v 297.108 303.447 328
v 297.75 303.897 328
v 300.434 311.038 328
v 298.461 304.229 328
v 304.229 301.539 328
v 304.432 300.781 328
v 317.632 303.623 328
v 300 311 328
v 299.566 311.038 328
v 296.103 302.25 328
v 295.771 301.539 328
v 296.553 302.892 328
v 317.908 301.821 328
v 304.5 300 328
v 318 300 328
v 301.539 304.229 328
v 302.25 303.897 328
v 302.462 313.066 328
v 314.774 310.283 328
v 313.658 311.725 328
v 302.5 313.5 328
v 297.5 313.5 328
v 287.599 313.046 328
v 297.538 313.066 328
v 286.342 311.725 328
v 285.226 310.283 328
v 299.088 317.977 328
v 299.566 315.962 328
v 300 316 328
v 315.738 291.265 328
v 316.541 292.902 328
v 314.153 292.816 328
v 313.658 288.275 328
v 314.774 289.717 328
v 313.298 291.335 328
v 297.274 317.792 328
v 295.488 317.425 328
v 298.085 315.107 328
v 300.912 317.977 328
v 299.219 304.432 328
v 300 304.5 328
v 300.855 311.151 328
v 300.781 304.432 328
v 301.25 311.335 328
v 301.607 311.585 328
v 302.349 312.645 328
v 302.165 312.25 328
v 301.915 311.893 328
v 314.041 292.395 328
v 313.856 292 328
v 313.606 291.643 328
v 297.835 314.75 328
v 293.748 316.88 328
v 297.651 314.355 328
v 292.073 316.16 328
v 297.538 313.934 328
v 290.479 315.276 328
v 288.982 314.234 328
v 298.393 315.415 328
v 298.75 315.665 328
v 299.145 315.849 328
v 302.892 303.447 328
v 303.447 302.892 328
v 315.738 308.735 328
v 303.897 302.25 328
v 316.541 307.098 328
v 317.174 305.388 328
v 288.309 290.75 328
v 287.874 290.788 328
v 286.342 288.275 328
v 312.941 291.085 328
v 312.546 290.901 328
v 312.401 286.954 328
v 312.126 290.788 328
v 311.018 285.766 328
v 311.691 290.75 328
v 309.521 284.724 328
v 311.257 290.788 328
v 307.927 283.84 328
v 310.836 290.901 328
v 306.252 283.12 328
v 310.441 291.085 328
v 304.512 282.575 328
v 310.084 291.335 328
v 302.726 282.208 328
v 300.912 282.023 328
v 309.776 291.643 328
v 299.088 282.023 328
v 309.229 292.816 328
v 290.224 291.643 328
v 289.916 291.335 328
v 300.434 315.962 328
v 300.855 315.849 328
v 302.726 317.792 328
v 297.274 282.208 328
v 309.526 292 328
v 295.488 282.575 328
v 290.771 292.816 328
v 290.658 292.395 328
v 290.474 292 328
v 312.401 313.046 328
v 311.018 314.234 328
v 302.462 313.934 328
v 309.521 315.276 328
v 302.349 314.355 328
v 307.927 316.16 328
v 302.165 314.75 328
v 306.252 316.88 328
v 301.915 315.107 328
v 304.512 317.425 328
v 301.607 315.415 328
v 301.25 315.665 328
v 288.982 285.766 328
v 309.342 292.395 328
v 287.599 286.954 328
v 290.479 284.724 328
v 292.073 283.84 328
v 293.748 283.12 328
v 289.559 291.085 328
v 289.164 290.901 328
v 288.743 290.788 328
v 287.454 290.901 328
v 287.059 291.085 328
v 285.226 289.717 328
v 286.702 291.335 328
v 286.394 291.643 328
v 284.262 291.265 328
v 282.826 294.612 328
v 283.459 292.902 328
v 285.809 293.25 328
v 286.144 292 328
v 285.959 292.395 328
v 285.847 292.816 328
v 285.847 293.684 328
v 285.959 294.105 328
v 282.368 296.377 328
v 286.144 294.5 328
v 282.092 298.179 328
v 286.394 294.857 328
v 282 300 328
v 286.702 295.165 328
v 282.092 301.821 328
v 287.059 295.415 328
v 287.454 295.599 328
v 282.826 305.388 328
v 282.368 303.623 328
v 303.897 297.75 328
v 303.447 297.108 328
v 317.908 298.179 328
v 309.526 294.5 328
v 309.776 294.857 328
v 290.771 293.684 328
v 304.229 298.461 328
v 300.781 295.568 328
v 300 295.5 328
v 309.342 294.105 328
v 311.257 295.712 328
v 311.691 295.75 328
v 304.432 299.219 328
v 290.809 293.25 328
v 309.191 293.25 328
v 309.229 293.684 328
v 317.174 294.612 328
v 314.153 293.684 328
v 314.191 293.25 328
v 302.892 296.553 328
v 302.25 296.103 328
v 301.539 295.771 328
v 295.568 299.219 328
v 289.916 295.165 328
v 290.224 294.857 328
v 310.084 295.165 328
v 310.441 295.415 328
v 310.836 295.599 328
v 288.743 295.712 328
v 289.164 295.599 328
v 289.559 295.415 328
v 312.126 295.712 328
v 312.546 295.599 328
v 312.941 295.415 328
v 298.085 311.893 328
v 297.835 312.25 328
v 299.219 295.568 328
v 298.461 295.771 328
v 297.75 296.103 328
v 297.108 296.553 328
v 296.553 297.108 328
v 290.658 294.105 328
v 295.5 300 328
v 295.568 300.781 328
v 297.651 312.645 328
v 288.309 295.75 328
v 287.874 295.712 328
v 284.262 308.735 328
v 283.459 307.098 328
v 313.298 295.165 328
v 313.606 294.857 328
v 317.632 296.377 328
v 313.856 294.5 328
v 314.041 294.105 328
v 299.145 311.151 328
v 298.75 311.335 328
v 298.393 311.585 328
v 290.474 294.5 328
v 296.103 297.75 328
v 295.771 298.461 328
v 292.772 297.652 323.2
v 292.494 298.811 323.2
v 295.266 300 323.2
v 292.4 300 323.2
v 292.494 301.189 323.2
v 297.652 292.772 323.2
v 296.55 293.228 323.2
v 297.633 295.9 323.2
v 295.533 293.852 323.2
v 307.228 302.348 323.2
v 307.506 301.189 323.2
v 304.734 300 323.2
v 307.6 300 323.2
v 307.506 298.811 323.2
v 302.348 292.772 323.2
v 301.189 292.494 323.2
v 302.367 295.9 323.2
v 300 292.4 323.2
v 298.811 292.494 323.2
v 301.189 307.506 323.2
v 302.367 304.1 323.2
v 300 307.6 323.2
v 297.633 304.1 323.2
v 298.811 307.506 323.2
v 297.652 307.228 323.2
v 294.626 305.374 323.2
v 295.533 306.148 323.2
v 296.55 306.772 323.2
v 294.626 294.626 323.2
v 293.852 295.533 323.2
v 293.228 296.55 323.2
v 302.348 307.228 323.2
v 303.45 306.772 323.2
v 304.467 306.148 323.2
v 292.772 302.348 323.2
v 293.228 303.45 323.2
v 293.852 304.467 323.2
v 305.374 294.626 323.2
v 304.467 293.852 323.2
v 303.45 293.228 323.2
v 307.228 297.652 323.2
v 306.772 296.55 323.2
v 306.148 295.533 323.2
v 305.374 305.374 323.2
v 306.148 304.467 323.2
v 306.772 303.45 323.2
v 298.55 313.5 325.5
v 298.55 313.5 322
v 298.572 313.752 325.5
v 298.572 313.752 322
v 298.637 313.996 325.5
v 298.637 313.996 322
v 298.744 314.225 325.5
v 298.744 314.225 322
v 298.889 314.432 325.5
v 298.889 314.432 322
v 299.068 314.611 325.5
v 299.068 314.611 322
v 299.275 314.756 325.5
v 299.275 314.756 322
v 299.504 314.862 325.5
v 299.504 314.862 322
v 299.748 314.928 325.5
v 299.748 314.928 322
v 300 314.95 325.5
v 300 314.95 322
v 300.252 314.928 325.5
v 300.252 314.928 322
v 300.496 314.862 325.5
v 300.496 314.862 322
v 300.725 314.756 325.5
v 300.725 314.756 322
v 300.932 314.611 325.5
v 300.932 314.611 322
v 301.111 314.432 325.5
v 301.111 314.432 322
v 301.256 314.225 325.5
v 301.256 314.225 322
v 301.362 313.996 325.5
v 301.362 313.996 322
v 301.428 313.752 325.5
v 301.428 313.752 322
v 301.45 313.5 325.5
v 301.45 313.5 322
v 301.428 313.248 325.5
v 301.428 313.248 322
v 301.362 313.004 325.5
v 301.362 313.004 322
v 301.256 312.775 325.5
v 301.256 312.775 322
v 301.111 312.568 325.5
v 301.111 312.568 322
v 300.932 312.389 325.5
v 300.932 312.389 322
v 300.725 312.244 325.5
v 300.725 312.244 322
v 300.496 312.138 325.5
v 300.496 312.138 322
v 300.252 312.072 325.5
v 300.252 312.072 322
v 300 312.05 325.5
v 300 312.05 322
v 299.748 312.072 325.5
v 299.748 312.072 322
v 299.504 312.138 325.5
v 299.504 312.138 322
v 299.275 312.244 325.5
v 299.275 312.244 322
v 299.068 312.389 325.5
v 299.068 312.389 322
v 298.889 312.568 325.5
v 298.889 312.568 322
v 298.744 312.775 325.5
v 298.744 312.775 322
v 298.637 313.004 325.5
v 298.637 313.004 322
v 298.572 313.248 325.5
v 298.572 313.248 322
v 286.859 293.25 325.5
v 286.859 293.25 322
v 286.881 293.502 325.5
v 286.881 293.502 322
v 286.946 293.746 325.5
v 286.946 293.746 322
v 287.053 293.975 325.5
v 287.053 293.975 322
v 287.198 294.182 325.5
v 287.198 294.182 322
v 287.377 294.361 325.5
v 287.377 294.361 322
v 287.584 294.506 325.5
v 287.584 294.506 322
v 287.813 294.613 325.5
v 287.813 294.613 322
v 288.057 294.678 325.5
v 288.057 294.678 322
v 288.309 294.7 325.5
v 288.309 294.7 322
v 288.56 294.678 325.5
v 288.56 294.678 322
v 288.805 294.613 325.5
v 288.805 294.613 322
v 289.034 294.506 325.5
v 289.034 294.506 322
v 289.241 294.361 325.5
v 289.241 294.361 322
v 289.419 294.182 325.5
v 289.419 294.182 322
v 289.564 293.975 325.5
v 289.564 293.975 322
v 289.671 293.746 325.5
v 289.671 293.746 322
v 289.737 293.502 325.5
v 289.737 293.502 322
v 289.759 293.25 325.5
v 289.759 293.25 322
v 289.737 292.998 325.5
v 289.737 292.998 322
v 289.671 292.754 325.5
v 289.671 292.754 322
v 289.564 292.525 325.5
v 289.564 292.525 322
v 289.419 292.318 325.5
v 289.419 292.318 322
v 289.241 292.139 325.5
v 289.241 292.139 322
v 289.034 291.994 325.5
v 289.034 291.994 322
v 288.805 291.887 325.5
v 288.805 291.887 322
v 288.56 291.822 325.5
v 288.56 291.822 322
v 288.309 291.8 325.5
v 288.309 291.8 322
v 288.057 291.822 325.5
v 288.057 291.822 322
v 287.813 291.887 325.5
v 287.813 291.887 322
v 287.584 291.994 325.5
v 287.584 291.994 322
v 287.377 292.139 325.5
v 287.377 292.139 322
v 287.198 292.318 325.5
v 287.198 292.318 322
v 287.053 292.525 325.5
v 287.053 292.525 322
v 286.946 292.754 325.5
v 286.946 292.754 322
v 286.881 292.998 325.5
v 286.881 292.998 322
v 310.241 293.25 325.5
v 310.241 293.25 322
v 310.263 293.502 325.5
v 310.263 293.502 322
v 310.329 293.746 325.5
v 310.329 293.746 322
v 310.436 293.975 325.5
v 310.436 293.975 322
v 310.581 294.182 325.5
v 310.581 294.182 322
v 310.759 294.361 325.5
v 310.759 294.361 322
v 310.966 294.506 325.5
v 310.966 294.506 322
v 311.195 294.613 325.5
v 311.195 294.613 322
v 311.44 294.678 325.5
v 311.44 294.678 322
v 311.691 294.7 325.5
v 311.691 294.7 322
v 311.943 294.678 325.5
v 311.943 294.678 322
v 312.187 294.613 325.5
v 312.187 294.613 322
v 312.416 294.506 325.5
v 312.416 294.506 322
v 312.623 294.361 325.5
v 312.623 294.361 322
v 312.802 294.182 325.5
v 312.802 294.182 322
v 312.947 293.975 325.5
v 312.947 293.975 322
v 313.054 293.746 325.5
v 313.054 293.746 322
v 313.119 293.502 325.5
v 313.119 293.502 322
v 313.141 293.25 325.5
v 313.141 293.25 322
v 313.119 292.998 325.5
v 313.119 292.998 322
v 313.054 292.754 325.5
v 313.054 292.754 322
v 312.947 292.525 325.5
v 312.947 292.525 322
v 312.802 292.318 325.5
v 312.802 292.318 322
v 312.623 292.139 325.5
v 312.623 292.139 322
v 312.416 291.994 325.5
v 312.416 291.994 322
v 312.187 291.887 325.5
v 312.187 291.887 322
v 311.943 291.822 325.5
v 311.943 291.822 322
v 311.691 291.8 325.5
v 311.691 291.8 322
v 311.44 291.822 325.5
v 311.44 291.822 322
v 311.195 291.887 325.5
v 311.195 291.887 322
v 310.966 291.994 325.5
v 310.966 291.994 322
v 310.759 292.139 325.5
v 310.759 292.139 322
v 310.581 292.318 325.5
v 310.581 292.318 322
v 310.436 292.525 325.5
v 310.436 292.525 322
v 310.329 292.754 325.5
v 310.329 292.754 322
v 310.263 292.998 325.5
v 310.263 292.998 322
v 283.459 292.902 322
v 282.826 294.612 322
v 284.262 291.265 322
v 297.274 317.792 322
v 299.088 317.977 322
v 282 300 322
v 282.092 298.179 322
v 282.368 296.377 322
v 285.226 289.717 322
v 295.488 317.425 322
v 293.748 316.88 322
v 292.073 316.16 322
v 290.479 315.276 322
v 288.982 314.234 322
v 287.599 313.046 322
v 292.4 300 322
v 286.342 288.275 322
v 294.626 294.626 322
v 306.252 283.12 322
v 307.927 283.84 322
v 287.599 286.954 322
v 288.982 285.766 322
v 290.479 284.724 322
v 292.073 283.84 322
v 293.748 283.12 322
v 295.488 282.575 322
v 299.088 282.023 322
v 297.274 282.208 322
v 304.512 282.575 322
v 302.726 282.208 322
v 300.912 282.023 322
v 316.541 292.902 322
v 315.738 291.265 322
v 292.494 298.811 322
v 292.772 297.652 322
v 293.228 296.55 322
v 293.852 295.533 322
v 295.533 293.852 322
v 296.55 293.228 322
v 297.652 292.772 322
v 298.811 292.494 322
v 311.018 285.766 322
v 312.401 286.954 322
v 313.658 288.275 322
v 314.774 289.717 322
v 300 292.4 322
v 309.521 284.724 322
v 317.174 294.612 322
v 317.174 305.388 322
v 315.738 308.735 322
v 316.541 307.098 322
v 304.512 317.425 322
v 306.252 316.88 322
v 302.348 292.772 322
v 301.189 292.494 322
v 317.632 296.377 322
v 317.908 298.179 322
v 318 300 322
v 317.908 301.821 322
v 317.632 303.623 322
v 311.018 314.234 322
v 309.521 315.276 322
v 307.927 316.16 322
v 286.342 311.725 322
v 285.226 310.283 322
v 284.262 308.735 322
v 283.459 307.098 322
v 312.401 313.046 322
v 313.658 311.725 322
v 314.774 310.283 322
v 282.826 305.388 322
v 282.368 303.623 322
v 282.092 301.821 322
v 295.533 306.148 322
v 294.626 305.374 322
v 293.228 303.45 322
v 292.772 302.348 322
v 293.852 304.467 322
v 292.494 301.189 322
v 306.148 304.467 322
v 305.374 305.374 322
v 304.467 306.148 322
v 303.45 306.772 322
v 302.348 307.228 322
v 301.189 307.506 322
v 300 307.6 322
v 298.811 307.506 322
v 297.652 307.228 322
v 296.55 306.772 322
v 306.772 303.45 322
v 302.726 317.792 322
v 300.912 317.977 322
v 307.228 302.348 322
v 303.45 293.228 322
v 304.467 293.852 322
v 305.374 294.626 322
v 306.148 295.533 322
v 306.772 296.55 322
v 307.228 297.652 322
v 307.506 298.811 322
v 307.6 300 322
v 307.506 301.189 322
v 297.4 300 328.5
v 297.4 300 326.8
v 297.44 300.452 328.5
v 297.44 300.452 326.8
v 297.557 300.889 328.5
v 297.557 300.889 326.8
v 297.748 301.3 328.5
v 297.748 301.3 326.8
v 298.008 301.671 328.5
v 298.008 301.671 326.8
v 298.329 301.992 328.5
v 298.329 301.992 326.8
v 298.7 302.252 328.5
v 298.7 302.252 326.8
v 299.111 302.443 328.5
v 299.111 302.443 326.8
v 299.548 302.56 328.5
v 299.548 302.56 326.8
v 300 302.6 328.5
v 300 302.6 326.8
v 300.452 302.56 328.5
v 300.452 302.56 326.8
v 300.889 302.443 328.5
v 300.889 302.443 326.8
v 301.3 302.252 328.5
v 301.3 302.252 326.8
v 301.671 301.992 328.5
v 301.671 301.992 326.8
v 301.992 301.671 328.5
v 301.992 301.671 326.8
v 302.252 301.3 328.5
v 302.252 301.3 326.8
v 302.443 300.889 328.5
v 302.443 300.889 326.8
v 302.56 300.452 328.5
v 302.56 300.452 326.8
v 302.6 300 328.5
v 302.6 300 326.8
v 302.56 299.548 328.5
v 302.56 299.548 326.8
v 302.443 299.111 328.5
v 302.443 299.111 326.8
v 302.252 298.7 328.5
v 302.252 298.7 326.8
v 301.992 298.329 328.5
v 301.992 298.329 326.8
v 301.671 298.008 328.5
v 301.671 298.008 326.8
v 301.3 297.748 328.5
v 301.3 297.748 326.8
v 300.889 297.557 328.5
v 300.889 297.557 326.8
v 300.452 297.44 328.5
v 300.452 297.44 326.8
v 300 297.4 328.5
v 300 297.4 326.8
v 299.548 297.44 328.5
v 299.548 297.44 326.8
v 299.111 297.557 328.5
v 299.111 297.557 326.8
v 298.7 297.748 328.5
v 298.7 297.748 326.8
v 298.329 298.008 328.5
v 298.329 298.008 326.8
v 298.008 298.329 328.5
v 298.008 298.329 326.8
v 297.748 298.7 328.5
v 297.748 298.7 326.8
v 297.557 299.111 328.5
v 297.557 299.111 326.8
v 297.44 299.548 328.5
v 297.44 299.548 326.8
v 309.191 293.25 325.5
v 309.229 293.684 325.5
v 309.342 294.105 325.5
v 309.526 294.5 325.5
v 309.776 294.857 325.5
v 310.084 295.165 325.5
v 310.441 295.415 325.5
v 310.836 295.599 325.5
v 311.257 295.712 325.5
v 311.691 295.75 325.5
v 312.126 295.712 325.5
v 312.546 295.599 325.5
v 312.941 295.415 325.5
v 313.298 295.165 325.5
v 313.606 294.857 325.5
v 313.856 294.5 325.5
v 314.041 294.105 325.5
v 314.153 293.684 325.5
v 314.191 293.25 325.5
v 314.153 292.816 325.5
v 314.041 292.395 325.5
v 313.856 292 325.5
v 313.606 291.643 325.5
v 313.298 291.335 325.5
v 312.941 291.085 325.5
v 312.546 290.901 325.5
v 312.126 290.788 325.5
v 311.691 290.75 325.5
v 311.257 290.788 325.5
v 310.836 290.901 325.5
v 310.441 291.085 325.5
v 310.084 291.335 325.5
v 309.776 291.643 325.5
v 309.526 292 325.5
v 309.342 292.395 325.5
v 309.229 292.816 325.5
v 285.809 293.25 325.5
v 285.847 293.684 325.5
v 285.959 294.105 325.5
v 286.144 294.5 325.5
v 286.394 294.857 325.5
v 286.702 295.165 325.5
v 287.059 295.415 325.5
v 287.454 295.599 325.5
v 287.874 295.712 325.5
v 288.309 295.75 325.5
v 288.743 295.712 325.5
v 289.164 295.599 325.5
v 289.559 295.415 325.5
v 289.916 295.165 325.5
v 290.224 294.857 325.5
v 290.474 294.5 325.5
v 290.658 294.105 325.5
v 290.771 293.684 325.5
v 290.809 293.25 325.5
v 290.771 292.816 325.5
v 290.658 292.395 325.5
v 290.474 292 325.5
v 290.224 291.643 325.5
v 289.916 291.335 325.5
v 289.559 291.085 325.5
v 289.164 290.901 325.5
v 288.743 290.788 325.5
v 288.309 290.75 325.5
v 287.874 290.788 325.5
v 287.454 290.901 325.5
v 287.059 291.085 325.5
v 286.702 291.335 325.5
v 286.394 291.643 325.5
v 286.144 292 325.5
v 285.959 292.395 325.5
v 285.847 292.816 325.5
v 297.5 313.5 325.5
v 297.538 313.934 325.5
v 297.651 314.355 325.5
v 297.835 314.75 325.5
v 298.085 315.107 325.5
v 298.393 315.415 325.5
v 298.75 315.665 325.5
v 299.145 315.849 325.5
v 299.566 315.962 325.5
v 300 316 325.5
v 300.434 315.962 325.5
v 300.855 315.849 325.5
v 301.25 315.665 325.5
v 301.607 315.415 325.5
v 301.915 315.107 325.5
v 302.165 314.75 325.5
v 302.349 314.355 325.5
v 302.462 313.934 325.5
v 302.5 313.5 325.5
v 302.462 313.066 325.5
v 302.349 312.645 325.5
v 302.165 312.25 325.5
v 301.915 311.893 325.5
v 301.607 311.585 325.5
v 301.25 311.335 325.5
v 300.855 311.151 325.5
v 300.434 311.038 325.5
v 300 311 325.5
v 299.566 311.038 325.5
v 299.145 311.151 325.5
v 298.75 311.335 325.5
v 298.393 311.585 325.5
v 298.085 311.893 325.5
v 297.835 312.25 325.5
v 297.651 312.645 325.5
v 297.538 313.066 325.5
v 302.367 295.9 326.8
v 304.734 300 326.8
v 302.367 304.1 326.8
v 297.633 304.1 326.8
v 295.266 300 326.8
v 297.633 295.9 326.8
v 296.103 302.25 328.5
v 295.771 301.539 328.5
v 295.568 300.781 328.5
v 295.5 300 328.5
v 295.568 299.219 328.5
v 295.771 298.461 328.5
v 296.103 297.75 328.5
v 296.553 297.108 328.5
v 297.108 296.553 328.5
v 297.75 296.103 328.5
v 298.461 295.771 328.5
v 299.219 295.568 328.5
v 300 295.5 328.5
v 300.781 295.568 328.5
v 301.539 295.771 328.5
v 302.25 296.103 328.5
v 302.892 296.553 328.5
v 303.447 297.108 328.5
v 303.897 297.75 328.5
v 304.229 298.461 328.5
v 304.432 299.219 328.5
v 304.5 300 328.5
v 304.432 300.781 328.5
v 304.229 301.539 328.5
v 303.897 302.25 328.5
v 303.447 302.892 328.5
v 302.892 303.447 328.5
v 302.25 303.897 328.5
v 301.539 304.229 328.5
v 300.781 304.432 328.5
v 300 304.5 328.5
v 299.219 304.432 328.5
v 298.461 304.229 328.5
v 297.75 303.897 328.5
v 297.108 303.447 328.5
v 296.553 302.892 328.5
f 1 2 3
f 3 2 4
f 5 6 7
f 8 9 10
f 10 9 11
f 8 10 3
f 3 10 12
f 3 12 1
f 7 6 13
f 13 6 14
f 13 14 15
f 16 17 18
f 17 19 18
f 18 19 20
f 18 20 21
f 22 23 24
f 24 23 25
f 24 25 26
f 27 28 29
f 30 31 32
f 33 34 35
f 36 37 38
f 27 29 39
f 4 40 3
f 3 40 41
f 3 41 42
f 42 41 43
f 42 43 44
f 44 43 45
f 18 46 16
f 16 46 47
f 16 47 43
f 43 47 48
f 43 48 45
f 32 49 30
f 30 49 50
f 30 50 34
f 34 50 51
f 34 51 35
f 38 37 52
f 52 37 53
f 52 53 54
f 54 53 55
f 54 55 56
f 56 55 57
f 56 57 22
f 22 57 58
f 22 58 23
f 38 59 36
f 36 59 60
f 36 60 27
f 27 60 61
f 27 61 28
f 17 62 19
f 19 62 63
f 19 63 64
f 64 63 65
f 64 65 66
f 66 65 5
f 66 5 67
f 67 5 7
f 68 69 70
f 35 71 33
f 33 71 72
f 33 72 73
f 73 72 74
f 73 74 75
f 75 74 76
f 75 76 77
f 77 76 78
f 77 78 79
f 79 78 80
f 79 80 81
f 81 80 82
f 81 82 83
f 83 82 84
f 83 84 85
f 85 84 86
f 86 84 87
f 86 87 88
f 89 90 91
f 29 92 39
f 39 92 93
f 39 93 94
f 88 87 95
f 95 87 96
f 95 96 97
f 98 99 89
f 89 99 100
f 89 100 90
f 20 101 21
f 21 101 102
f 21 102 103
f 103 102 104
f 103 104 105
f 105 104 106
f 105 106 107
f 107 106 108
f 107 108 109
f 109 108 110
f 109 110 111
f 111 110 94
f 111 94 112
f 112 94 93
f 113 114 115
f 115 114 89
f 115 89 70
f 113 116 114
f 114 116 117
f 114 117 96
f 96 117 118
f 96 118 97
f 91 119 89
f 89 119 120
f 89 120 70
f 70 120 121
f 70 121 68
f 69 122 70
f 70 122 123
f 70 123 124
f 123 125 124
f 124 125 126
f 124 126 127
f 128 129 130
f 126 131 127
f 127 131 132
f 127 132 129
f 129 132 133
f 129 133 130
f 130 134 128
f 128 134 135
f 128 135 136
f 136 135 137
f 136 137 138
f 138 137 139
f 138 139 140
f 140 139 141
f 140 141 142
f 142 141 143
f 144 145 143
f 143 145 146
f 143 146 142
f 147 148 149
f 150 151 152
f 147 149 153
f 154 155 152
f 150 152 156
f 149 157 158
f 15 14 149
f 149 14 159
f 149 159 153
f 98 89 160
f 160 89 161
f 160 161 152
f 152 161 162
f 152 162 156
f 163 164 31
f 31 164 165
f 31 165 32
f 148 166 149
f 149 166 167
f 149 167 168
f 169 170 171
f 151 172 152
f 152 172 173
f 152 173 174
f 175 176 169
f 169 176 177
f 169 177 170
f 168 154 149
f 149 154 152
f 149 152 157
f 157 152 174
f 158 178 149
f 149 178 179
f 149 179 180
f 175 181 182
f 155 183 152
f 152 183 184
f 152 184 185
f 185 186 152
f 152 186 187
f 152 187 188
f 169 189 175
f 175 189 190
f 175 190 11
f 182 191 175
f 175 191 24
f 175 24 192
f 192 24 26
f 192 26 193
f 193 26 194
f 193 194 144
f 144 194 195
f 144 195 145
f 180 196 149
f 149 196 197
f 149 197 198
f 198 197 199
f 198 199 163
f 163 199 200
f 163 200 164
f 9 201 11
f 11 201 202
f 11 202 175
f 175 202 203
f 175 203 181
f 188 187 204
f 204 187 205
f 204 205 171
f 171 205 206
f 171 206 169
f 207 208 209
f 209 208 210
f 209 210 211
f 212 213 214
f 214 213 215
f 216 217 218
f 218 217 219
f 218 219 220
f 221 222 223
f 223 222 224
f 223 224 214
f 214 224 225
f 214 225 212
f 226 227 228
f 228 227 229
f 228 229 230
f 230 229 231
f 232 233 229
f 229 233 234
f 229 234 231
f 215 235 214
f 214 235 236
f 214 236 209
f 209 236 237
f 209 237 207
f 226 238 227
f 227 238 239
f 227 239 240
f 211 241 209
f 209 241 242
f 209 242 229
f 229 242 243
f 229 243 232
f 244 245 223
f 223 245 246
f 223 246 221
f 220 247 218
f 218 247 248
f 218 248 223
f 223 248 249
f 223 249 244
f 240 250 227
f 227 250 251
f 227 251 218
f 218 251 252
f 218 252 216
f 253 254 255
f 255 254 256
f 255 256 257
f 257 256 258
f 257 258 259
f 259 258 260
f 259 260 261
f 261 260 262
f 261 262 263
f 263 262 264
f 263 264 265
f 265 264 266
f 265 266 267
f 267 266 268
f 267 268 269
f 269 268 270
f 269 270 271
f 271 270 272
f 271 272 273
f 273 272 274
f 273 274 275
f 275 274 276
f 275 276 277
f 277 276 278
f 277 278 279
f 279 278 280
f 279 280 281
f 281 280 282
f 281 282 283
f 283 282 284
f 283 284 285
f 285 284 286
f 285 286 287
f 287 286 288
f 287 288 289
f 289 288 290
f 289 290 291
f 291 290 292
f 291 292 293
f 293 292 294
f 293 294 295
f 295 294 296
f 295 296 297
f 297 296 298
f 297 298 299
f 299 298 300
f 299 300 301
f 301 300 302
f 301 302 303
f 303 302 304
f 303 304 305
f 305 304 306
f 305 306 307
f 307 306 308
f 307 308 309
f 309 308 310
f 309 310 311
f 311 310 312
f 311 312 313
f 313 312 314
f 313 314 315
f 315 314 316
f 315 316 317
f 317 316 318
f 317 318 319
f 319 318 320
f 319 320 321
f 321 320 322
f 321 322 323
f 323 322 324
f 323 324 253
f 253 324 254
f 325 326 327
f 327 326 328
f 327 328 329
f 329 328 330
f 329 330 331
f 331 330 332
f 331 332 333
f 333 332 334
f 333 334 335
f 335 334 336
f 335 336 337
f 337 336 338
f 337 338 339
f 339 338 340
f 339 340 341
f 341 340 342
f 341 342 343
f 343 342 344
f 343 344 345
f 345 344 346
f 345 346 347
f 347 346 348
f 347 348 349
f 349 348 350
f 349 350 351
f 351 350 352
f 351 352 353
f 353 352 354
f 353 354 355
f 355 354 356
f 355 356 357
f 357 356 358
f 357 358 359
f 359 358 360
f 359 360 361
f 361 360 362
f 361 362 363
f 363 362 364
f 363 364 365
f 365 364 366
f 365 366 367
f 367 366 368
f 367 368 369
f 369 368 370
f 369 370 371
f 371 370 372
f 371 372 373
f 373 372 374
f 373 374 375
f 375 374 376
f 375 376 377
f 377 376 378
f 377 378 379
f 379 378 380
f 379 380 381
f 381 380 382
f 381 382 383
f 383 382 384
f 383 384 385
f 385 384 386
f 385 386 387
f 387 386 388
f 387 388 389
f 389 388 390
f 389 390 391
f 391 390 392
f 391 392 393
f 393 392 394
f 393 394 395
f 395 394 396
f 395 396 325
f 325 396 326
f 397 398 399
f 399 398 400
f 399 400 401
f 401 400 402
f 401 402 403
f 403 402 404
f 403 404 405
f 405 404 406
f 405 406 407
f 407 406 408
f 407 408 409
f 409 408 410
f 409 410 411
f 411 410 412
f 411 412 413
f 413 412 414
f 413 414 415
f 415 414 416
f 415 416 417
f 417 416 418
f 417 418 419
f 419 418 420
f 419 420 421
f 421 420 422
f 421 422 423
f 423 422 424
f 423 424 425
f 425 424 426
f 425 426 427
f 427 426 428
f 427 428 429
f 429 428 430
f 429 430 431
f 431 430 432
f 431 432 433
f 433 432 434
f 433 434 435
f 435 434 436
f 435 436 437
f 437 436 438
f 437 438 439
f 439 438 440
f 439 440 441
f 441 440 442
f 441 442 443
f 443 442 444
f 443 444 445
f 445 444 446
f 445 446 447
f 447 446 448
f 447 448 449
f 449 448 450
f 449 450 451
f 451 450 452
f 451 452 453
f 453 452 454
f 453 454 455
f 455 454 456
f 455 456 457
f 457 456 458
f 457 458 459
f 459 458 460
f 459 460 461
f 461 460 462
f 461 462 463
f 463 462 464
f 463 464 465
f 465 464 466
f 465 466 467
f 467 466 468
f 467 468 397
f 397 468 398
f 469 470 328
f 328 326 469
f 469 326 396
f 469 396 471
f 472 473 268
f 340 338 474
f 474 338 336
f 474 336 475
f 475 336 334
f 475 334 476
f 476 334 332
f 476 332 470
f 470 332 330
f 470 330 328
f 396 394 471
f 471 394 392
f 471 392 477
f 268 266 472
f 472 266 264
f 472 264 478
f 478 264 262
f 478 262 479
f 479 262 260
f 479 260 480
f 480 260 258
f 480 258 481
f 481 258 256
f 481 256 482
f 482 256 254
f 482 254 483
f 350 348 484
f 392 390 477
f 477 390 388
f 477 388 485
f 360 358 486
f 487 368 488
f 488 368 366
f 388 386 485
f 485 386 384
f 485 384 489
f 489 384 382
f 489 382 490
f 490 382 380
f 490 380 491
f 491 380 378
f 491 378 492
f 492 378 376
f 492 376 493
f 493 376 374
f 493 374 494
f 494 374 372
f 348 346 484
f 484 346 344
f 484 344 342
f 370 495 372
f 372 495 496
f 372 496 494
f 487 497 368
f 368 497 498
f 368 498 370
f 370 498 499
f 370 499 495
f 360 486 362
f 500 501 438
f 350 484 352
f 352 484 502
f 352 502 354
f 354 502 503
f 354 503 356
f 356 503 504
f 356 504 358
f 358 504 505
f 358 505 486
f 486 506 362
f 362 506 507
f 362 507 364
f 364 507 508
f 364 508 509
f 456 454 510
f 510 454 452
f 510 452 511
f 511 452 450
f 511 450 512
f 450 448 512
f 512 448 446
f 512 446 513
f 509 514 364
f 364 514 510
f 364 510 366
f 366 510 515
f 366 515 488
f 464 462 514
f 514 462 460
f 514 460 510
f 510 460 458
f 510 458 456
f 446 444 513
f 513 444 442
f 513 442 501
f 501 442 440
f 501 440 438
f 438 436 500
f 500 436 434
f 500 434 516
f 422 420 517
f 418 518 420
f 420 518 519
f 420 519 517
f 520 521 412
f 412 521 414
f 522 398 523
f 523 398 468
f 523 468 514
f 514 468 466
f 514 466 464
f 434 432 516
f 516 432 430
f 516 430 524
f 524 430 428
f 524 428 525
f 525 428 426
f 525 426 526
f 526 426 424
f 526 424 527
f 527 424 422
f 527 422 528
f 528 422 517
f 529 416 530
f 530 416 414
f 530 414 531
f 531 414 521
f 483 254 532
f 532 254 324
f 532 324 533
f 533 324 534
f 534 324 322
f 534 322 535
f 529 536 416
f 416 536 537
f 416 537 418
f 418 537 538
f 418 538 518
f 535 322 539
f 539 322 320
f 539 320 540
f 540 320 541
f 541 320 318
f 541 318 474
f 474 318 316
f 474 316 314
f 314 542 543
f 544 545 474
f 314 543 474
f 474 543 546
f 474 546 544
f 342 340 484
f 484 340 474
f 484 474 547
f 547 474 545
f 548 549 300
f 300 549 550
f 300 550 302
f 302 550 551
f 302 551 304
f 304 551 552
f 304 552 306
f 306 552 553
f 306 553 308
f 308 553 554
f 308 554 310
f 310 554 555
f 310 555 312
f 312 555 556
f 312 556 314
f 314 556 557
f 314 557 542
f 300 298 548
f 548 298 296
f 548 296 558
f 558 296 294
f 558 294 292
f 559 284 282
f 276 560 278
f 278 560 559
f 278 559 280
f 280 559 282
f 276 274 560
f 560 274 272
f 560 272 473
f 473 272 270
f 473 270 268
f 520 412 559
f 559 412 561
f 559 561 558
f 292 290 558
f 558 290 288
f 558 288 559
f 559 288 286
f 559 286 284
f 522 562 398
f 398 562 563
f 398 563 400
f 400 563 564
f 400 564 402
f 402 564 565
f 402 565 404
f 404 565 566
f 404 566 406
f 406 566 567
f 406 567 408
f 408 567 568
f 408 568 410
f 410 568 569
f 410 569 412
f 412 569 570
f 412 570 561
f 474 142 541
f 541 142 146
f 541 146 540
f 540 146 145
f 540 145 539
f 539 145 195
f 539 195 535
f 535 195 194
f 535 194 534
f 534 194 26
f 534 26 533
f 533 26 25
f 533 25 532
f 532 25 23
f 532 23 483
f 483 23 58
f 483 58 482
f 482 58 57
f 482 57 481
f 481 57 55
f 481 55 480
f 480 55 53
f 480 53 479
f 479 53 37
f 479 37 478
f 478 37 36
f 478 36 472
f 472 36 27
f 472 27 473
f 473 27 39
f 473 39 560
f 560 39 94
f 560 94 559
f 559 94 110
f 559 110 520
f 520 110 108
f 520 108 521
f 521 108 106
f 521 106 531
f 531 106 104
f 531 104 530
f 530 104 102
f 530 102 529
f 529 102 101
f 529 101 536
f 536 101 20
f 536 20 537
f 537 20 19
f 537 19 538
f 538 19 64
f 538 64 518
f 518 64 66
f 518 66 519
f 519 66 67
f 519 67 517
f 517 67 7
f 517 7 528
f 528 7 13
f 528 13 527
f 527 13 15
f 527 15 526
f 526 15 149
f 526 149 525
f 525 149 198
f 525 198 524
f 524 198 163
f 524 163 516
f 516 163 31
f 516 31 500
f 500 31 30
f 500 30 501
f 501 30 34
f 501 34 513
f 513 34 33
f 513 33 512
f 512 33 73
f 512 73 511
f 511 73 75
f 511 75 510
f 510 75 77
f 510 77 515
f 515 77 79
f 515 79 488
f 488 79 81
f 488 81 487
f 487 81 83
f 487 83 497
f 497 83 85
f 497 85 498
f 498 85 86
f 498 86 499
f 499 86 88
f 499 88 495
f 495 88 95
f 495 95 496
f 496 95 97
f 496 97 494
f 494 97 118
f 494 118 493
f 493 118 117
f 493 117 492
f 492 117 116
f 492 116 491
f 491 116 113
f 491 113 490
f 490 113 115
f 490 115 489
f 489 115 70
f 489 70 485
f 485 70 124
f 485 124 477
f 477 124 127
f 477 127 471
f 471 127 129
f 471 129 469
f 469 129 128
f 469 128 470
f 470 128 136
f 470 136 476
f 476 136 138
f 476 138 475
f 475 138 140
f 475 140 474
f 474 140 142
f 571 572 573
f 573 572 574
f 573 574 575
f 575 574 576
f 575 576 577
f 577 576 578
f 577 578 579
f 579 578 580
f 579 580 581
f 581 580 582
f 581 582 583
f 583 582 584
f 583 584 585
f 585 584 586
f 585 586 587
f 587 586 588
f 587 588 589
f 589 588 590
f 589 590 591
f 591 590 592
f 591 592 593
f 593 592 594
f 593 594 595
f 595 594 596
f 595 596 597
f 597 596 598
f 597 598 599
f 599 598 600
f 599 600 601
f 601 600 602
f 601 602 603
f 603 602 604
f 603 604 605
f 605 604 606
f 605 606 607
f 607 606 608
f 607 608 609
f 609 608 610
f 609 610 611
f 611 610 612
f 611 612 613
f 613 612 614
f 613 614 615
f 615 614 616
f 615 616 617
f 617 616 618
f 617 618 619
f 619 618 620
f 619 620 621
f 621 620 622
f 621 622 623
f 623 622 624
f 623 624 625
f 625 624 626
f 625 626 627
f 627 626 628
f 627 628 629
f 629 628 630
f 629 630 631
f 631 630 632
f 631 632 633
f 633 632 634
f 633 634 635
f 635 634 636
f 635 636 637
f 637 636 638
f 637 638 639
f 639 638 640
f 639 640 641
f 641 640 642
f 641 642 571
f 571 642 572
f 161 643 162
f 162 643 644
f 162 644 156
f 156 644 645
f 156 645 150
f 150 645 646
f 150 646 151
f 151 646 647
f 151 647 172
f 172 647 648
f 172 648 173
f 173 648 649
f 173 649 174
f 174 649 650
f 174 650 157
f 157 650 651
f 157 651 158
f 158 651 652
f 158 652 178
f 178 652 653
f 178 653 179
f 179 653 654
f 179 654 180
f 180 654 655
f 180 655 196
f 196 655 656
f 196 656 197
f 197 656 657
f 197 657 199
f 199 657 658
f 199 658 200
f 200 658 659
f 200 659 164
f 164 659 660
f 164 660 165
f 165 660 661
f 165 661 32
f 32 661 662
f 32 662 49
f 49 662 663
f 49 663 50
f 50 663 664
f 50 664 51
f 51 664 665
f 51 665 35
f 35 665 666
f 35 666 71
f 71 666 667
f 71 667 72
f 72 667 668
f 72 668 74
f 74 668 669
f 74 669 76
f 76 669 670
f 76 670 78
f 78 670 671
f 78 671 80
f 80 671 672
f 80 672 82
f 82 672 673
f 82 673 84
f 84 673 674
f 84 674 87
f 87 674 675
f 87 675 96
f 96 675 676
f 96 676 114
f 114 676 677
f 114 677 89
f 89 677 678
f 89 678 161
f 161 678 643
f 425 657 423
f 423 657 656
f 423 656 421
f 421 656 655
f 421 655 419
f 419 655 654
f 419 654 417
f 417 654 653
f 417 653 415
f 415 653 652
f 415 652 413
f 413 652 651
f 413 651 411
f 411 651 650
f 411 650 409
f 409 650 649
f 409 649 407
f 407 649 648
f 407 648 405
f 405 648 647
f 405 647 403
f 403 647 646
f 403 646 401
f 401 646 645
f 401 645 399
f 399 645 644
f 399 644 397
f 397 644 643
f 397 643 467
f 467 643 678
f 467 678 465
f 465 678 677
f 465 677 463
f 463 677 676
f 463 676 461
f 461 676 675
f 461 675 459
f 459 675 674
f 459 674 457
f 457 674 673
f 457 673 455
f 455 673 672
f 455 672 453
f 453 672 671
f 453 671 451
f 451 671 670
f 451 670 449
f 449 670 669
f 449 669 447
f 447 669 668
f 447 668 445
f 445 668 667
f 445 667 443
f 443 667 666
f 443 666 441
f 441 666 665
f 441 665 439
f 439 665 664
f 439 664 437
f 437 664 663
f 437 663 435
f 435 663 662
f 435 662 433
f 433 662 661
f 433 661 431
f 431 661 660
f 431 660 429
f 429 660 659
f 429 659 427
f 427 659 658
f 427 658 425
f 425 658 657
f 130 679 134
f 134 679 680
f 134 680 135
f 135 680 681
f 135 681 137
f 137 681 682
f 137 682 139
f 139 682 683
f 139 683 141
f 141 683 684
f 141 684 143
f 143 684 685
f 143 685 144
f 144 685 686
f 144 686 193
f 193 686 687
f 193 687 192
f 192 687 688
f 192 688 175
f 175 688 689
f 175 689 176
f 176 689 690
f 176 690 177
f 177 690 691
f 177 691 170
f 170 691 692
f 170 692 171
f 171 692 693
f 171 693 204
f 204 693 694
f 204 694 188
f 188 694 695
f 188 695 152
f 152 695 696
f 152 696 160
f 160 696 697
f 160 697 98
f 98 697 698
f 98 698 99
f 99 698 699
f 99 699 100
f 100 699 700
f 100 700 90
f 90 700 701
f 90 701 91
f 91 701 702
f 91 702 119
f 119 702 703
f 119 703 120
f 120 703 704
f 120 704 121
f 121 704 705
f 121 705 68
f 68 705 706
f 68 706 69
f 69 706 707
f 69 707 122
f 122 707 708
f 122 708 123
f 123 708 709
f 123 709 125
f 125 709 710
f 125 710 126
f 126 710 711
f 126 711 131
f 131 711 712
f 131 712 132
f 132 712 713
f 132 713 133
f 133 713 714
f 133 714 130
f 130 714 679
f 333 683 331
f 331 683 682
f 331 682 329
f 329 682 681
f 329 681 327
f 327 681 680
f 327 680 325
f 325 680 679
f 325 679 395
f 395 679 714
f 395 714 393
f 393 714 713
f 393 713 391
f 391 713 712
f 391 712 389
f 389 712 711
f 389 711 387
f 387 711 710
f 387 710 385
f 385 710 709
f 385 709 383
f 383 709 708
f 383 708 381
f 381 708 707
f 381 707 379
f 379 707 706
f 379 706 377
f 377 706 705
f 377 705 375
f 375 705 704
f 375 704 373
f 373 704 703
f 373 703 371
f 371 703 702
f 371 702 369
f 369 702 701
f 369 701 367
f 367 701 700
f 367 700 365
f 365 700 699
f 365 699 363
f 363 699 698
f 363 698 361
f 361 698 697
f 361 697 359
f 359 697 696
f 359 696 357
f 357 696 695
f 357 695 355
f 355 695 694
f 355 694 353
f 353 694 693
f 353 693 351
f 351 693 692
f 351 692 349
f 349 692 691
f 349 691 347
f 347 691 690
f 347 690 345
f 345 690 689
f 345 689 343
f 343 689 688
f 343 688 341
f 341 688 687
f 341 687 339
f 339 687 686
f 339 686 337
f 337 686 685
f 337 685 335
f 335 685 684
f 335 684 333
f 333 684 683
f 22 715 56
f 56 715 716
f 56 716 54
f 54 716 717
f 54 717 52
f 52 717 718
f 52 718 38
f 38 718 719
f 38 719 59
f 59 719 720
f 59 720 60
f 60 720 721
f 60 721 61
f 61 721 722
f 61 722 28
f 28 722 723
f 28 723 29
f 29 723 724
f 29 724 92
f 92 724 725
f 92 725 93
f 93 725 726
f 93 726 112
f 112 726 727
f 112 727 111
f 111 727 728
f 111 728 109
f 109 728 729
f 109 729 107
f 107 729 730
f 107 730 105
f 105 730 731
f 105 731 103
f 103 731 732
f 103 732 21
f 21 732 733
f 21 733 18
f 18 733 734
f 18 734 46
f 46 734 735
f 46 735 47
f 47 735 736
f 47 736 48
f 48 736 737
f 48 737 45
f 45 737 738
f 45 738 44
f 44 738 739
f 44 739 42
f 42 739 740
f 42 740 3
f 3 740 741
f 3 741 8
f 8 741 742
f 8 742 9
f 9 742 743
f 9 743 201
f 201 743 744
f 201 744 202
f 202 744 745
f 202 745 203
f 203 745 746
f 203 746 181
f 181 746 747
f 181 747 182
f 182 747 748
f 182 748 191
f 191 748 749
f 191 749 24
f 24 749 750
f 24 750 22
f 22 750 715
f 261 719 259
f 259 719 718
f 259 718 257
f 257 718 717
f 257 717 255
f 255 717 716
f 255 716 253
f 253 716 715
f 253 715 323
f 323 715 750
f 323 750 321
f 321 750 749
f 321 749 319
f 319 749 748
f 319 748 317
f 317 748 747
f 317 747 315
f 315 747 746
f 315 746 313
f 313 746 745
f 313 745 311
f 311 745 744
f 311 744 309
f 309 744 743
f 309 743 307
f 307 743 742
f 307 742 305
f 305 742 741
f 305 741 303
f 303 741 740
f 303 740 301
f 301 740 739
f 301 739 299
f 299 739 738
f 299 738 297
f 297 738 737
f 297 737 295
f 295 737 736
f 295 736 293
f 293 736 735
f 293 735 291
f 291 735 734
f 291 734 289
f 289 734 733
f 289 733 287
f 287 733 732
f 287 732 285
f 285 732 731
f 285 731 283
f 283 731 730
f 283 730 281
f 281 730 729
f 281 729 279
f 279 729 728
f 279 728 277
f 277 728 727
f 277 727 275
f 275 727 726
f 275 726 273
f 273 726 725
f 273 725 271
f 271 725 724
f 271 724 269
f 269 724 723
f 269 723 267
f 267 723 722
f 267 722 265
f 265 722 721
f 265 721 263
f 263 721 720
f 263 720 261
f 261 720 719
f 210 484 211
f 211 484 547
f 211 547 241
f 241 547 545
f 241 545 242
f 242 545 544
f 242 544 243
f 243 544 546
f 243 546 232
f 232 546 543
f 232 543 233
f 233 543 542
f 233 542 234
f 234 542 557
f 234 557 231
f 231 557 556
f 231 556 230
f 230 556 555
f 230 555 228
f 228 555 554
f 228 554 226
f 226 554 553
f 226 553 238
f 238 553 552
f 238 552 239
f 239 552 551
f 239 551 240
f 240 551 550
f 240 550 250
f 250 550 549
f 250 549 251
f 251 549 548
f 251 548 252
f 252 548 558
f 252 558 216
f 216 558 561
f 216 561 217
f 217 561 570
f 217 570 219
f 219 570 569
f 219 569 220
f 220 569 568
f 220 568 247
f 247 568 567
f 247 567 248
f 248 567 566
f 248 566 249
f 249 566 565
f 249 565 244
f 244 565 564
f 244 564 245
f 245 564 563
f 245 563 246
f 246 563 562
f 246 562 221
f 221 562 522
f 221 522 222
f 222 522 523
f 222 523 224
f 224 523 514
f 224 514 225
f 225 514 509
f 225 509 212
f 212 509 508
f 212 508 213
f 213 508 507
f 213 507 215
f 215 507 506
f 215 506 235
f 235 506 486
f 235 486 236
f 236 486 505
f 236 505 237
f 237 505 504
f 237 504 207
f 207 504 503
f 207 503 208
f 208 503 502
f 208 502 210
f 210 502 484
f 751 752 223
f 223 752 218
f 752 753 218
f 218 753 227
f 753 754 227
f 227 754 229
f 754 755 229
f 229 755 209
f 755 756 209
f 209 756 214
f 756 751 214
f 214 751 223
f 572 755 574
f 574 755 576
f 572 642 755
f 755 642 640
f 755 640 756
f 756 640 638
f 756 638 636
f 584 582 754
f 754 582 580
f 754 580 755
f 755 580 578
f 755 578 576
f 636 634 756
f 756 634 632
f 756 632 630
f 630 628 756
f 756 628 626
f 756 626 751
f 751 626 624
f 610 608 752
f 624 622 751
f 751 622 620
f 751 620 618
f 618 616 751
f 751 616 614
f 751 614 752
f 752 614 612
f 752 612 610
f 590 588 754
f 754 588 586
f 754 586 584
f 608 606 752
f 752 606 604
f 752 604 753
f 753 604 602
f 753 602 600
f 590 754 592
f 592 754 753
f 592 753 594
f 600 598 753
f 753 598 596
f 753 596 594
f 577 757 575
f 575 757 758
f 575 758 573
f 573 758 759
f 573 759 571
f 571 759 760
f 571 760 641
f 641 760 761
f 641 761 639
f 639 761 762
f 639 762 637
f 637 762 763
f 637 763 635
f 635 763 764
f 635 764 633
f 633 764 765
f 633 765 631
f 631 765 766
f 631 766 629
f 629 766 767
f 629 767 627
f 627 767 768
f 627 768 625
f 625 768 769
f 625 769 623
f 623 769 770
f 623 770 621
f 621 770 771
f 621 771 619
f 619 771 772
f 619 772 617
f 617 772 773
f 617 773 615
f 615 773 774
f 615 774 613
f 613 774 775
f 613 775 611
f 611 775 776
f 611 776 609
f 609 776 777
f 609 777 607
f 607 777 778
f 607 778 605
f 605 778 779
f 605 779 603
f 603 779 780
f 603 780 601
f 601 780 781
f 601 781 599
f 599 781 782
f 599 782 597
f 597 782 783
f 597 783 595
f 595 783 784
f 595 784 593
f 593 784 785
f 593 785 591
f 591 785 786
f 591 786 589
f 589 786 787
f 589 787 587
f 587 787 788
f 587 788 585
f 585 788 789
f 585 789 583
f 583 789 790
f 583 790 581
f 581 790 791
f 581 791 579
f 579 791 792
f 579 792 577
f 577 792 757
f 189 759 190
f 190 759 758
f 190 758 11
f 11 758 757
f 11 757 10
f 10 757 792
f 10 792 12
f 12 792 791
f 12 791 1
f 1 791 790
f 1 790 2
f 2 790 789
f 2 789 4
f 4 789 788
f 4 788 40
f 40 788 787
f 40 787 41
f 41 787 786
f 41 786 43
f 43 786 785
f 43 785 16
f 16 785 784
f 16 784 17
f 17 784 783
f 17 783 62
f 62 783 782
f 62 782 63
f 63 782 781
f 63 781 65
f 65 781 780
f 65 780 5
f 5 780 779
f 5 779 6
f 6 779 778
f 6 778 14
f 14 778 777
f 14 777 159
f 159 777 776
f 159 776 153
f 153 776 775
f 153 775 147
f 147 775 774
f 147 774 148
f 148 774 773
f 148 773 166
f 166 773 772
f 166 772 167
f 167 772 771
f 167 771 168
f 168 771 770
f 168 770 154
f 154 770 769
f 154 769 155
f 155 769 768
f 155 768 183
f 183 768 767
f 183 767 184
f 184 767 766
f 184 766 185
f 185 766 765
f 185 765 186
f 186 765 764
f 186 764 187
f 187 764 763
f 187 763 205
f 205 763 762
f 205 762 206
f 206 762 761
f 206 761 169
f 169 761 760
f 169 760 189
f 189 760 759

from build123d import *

# Parameters (mm, degrees)
SKETCH1_R           = 18
SKETCH1_R_2         = 2.6
SKETCH1_R_3         = 1.45
BOSS_EXTRUDE1_DEPTH = 6
SKETCH2_R           = 2.5
CUT_EXTRUDE1_DEPTH  = 2.51
SKETCH3_R           = 7.6
CUT_EXTRUDE2_DEPTH  = 1.2
CUT_EXTRUDE3_DEPTH  = 3.6
SKETCH5_R           = 4.5
SKETCH5_R_2         = 2.6
BOSS_EXTRUDE2_DEPTH = 0.5


with BuildPart() as part:
    # Sketch1 → Boss-Extrude1 (new body)
    with BuildSketch(Plane.XY.offset(322)):
        with Locations((300, 300)):
            Circle(SKETCH1_R)
        with Locations((300, 300)):
            Circle(SKETCH1_R_2, mode=Mode.SUBTRACT)
        with Locations((300, 313.5)):
            Circle(SKETCH1_R_3, mode=Mode.SUBTRACT)
        with Locations((288.308657049, 293.25)):
            Circle(SKETCH1_R_3, mode=Mode.SUBTRACT)
        with Locations((311.691342951, 293.25)):
            Circle(SKETCH1_R_3, mode=Mode.SUBTRACT)
    extrude(amount=BOSS_EXTRUDE1_DEPTH)

    # Sketch2 → Cut-Extrude1 (cut)
    with BuildSketch(Plane.XY.offset(325.5)):
        with Locations((300, 313.5)):
            Circle(SKETCH2_R)
        with Locations((288.308657049, 293.25)):
            Circle(SKETCH2_R)
        with Locations((311.691342951, 293.25)):
            Circle(SKETCH2_R)
    extrude(amount=CUT_EXTRUDE1_DEPTH, mode=Mode.SUBTRACT)

    # Sketch3 → Cut-Extrude2 (cut)
    with BuildSketch(Plane.XY.offset(322)):
        with Locations((300, 300)):
            Circle(SKETCH3_R)
    extrude(amount=CUT_EXTRUDE2_DEPTH, mode=Mode.SUBTRACT)

    # Sketch4 → Cut-Extrude3 (cut)
    with BuildSketch(Plane.XY.offset(323.2)):
        Polygon((304.734272207, 300), (302.367136104, 304.1), (297.632863896, 304.1), (295.265727793, 300), (297.632863896, 295.9), (302.367136104, 295.9), align=None)
    extrude(amount=CUT_EXTRUDE3_DEPTH, mode=Mode.SUBTRACT)

    # Sketch5 → Boss-Extrude2 (add)
    with BuildSketch(Plane.XY.offset(328)):
        with Locations((300, 300)):
            Circle(SKETCH5_R)
        with Locations((300, 300)):
            Circle(SKETCH5_R_2, mode=Mode.SUBTRACT)
    extrude(amount=BOSS_EXTRUDE2_DEPTH)


solid = part.part
